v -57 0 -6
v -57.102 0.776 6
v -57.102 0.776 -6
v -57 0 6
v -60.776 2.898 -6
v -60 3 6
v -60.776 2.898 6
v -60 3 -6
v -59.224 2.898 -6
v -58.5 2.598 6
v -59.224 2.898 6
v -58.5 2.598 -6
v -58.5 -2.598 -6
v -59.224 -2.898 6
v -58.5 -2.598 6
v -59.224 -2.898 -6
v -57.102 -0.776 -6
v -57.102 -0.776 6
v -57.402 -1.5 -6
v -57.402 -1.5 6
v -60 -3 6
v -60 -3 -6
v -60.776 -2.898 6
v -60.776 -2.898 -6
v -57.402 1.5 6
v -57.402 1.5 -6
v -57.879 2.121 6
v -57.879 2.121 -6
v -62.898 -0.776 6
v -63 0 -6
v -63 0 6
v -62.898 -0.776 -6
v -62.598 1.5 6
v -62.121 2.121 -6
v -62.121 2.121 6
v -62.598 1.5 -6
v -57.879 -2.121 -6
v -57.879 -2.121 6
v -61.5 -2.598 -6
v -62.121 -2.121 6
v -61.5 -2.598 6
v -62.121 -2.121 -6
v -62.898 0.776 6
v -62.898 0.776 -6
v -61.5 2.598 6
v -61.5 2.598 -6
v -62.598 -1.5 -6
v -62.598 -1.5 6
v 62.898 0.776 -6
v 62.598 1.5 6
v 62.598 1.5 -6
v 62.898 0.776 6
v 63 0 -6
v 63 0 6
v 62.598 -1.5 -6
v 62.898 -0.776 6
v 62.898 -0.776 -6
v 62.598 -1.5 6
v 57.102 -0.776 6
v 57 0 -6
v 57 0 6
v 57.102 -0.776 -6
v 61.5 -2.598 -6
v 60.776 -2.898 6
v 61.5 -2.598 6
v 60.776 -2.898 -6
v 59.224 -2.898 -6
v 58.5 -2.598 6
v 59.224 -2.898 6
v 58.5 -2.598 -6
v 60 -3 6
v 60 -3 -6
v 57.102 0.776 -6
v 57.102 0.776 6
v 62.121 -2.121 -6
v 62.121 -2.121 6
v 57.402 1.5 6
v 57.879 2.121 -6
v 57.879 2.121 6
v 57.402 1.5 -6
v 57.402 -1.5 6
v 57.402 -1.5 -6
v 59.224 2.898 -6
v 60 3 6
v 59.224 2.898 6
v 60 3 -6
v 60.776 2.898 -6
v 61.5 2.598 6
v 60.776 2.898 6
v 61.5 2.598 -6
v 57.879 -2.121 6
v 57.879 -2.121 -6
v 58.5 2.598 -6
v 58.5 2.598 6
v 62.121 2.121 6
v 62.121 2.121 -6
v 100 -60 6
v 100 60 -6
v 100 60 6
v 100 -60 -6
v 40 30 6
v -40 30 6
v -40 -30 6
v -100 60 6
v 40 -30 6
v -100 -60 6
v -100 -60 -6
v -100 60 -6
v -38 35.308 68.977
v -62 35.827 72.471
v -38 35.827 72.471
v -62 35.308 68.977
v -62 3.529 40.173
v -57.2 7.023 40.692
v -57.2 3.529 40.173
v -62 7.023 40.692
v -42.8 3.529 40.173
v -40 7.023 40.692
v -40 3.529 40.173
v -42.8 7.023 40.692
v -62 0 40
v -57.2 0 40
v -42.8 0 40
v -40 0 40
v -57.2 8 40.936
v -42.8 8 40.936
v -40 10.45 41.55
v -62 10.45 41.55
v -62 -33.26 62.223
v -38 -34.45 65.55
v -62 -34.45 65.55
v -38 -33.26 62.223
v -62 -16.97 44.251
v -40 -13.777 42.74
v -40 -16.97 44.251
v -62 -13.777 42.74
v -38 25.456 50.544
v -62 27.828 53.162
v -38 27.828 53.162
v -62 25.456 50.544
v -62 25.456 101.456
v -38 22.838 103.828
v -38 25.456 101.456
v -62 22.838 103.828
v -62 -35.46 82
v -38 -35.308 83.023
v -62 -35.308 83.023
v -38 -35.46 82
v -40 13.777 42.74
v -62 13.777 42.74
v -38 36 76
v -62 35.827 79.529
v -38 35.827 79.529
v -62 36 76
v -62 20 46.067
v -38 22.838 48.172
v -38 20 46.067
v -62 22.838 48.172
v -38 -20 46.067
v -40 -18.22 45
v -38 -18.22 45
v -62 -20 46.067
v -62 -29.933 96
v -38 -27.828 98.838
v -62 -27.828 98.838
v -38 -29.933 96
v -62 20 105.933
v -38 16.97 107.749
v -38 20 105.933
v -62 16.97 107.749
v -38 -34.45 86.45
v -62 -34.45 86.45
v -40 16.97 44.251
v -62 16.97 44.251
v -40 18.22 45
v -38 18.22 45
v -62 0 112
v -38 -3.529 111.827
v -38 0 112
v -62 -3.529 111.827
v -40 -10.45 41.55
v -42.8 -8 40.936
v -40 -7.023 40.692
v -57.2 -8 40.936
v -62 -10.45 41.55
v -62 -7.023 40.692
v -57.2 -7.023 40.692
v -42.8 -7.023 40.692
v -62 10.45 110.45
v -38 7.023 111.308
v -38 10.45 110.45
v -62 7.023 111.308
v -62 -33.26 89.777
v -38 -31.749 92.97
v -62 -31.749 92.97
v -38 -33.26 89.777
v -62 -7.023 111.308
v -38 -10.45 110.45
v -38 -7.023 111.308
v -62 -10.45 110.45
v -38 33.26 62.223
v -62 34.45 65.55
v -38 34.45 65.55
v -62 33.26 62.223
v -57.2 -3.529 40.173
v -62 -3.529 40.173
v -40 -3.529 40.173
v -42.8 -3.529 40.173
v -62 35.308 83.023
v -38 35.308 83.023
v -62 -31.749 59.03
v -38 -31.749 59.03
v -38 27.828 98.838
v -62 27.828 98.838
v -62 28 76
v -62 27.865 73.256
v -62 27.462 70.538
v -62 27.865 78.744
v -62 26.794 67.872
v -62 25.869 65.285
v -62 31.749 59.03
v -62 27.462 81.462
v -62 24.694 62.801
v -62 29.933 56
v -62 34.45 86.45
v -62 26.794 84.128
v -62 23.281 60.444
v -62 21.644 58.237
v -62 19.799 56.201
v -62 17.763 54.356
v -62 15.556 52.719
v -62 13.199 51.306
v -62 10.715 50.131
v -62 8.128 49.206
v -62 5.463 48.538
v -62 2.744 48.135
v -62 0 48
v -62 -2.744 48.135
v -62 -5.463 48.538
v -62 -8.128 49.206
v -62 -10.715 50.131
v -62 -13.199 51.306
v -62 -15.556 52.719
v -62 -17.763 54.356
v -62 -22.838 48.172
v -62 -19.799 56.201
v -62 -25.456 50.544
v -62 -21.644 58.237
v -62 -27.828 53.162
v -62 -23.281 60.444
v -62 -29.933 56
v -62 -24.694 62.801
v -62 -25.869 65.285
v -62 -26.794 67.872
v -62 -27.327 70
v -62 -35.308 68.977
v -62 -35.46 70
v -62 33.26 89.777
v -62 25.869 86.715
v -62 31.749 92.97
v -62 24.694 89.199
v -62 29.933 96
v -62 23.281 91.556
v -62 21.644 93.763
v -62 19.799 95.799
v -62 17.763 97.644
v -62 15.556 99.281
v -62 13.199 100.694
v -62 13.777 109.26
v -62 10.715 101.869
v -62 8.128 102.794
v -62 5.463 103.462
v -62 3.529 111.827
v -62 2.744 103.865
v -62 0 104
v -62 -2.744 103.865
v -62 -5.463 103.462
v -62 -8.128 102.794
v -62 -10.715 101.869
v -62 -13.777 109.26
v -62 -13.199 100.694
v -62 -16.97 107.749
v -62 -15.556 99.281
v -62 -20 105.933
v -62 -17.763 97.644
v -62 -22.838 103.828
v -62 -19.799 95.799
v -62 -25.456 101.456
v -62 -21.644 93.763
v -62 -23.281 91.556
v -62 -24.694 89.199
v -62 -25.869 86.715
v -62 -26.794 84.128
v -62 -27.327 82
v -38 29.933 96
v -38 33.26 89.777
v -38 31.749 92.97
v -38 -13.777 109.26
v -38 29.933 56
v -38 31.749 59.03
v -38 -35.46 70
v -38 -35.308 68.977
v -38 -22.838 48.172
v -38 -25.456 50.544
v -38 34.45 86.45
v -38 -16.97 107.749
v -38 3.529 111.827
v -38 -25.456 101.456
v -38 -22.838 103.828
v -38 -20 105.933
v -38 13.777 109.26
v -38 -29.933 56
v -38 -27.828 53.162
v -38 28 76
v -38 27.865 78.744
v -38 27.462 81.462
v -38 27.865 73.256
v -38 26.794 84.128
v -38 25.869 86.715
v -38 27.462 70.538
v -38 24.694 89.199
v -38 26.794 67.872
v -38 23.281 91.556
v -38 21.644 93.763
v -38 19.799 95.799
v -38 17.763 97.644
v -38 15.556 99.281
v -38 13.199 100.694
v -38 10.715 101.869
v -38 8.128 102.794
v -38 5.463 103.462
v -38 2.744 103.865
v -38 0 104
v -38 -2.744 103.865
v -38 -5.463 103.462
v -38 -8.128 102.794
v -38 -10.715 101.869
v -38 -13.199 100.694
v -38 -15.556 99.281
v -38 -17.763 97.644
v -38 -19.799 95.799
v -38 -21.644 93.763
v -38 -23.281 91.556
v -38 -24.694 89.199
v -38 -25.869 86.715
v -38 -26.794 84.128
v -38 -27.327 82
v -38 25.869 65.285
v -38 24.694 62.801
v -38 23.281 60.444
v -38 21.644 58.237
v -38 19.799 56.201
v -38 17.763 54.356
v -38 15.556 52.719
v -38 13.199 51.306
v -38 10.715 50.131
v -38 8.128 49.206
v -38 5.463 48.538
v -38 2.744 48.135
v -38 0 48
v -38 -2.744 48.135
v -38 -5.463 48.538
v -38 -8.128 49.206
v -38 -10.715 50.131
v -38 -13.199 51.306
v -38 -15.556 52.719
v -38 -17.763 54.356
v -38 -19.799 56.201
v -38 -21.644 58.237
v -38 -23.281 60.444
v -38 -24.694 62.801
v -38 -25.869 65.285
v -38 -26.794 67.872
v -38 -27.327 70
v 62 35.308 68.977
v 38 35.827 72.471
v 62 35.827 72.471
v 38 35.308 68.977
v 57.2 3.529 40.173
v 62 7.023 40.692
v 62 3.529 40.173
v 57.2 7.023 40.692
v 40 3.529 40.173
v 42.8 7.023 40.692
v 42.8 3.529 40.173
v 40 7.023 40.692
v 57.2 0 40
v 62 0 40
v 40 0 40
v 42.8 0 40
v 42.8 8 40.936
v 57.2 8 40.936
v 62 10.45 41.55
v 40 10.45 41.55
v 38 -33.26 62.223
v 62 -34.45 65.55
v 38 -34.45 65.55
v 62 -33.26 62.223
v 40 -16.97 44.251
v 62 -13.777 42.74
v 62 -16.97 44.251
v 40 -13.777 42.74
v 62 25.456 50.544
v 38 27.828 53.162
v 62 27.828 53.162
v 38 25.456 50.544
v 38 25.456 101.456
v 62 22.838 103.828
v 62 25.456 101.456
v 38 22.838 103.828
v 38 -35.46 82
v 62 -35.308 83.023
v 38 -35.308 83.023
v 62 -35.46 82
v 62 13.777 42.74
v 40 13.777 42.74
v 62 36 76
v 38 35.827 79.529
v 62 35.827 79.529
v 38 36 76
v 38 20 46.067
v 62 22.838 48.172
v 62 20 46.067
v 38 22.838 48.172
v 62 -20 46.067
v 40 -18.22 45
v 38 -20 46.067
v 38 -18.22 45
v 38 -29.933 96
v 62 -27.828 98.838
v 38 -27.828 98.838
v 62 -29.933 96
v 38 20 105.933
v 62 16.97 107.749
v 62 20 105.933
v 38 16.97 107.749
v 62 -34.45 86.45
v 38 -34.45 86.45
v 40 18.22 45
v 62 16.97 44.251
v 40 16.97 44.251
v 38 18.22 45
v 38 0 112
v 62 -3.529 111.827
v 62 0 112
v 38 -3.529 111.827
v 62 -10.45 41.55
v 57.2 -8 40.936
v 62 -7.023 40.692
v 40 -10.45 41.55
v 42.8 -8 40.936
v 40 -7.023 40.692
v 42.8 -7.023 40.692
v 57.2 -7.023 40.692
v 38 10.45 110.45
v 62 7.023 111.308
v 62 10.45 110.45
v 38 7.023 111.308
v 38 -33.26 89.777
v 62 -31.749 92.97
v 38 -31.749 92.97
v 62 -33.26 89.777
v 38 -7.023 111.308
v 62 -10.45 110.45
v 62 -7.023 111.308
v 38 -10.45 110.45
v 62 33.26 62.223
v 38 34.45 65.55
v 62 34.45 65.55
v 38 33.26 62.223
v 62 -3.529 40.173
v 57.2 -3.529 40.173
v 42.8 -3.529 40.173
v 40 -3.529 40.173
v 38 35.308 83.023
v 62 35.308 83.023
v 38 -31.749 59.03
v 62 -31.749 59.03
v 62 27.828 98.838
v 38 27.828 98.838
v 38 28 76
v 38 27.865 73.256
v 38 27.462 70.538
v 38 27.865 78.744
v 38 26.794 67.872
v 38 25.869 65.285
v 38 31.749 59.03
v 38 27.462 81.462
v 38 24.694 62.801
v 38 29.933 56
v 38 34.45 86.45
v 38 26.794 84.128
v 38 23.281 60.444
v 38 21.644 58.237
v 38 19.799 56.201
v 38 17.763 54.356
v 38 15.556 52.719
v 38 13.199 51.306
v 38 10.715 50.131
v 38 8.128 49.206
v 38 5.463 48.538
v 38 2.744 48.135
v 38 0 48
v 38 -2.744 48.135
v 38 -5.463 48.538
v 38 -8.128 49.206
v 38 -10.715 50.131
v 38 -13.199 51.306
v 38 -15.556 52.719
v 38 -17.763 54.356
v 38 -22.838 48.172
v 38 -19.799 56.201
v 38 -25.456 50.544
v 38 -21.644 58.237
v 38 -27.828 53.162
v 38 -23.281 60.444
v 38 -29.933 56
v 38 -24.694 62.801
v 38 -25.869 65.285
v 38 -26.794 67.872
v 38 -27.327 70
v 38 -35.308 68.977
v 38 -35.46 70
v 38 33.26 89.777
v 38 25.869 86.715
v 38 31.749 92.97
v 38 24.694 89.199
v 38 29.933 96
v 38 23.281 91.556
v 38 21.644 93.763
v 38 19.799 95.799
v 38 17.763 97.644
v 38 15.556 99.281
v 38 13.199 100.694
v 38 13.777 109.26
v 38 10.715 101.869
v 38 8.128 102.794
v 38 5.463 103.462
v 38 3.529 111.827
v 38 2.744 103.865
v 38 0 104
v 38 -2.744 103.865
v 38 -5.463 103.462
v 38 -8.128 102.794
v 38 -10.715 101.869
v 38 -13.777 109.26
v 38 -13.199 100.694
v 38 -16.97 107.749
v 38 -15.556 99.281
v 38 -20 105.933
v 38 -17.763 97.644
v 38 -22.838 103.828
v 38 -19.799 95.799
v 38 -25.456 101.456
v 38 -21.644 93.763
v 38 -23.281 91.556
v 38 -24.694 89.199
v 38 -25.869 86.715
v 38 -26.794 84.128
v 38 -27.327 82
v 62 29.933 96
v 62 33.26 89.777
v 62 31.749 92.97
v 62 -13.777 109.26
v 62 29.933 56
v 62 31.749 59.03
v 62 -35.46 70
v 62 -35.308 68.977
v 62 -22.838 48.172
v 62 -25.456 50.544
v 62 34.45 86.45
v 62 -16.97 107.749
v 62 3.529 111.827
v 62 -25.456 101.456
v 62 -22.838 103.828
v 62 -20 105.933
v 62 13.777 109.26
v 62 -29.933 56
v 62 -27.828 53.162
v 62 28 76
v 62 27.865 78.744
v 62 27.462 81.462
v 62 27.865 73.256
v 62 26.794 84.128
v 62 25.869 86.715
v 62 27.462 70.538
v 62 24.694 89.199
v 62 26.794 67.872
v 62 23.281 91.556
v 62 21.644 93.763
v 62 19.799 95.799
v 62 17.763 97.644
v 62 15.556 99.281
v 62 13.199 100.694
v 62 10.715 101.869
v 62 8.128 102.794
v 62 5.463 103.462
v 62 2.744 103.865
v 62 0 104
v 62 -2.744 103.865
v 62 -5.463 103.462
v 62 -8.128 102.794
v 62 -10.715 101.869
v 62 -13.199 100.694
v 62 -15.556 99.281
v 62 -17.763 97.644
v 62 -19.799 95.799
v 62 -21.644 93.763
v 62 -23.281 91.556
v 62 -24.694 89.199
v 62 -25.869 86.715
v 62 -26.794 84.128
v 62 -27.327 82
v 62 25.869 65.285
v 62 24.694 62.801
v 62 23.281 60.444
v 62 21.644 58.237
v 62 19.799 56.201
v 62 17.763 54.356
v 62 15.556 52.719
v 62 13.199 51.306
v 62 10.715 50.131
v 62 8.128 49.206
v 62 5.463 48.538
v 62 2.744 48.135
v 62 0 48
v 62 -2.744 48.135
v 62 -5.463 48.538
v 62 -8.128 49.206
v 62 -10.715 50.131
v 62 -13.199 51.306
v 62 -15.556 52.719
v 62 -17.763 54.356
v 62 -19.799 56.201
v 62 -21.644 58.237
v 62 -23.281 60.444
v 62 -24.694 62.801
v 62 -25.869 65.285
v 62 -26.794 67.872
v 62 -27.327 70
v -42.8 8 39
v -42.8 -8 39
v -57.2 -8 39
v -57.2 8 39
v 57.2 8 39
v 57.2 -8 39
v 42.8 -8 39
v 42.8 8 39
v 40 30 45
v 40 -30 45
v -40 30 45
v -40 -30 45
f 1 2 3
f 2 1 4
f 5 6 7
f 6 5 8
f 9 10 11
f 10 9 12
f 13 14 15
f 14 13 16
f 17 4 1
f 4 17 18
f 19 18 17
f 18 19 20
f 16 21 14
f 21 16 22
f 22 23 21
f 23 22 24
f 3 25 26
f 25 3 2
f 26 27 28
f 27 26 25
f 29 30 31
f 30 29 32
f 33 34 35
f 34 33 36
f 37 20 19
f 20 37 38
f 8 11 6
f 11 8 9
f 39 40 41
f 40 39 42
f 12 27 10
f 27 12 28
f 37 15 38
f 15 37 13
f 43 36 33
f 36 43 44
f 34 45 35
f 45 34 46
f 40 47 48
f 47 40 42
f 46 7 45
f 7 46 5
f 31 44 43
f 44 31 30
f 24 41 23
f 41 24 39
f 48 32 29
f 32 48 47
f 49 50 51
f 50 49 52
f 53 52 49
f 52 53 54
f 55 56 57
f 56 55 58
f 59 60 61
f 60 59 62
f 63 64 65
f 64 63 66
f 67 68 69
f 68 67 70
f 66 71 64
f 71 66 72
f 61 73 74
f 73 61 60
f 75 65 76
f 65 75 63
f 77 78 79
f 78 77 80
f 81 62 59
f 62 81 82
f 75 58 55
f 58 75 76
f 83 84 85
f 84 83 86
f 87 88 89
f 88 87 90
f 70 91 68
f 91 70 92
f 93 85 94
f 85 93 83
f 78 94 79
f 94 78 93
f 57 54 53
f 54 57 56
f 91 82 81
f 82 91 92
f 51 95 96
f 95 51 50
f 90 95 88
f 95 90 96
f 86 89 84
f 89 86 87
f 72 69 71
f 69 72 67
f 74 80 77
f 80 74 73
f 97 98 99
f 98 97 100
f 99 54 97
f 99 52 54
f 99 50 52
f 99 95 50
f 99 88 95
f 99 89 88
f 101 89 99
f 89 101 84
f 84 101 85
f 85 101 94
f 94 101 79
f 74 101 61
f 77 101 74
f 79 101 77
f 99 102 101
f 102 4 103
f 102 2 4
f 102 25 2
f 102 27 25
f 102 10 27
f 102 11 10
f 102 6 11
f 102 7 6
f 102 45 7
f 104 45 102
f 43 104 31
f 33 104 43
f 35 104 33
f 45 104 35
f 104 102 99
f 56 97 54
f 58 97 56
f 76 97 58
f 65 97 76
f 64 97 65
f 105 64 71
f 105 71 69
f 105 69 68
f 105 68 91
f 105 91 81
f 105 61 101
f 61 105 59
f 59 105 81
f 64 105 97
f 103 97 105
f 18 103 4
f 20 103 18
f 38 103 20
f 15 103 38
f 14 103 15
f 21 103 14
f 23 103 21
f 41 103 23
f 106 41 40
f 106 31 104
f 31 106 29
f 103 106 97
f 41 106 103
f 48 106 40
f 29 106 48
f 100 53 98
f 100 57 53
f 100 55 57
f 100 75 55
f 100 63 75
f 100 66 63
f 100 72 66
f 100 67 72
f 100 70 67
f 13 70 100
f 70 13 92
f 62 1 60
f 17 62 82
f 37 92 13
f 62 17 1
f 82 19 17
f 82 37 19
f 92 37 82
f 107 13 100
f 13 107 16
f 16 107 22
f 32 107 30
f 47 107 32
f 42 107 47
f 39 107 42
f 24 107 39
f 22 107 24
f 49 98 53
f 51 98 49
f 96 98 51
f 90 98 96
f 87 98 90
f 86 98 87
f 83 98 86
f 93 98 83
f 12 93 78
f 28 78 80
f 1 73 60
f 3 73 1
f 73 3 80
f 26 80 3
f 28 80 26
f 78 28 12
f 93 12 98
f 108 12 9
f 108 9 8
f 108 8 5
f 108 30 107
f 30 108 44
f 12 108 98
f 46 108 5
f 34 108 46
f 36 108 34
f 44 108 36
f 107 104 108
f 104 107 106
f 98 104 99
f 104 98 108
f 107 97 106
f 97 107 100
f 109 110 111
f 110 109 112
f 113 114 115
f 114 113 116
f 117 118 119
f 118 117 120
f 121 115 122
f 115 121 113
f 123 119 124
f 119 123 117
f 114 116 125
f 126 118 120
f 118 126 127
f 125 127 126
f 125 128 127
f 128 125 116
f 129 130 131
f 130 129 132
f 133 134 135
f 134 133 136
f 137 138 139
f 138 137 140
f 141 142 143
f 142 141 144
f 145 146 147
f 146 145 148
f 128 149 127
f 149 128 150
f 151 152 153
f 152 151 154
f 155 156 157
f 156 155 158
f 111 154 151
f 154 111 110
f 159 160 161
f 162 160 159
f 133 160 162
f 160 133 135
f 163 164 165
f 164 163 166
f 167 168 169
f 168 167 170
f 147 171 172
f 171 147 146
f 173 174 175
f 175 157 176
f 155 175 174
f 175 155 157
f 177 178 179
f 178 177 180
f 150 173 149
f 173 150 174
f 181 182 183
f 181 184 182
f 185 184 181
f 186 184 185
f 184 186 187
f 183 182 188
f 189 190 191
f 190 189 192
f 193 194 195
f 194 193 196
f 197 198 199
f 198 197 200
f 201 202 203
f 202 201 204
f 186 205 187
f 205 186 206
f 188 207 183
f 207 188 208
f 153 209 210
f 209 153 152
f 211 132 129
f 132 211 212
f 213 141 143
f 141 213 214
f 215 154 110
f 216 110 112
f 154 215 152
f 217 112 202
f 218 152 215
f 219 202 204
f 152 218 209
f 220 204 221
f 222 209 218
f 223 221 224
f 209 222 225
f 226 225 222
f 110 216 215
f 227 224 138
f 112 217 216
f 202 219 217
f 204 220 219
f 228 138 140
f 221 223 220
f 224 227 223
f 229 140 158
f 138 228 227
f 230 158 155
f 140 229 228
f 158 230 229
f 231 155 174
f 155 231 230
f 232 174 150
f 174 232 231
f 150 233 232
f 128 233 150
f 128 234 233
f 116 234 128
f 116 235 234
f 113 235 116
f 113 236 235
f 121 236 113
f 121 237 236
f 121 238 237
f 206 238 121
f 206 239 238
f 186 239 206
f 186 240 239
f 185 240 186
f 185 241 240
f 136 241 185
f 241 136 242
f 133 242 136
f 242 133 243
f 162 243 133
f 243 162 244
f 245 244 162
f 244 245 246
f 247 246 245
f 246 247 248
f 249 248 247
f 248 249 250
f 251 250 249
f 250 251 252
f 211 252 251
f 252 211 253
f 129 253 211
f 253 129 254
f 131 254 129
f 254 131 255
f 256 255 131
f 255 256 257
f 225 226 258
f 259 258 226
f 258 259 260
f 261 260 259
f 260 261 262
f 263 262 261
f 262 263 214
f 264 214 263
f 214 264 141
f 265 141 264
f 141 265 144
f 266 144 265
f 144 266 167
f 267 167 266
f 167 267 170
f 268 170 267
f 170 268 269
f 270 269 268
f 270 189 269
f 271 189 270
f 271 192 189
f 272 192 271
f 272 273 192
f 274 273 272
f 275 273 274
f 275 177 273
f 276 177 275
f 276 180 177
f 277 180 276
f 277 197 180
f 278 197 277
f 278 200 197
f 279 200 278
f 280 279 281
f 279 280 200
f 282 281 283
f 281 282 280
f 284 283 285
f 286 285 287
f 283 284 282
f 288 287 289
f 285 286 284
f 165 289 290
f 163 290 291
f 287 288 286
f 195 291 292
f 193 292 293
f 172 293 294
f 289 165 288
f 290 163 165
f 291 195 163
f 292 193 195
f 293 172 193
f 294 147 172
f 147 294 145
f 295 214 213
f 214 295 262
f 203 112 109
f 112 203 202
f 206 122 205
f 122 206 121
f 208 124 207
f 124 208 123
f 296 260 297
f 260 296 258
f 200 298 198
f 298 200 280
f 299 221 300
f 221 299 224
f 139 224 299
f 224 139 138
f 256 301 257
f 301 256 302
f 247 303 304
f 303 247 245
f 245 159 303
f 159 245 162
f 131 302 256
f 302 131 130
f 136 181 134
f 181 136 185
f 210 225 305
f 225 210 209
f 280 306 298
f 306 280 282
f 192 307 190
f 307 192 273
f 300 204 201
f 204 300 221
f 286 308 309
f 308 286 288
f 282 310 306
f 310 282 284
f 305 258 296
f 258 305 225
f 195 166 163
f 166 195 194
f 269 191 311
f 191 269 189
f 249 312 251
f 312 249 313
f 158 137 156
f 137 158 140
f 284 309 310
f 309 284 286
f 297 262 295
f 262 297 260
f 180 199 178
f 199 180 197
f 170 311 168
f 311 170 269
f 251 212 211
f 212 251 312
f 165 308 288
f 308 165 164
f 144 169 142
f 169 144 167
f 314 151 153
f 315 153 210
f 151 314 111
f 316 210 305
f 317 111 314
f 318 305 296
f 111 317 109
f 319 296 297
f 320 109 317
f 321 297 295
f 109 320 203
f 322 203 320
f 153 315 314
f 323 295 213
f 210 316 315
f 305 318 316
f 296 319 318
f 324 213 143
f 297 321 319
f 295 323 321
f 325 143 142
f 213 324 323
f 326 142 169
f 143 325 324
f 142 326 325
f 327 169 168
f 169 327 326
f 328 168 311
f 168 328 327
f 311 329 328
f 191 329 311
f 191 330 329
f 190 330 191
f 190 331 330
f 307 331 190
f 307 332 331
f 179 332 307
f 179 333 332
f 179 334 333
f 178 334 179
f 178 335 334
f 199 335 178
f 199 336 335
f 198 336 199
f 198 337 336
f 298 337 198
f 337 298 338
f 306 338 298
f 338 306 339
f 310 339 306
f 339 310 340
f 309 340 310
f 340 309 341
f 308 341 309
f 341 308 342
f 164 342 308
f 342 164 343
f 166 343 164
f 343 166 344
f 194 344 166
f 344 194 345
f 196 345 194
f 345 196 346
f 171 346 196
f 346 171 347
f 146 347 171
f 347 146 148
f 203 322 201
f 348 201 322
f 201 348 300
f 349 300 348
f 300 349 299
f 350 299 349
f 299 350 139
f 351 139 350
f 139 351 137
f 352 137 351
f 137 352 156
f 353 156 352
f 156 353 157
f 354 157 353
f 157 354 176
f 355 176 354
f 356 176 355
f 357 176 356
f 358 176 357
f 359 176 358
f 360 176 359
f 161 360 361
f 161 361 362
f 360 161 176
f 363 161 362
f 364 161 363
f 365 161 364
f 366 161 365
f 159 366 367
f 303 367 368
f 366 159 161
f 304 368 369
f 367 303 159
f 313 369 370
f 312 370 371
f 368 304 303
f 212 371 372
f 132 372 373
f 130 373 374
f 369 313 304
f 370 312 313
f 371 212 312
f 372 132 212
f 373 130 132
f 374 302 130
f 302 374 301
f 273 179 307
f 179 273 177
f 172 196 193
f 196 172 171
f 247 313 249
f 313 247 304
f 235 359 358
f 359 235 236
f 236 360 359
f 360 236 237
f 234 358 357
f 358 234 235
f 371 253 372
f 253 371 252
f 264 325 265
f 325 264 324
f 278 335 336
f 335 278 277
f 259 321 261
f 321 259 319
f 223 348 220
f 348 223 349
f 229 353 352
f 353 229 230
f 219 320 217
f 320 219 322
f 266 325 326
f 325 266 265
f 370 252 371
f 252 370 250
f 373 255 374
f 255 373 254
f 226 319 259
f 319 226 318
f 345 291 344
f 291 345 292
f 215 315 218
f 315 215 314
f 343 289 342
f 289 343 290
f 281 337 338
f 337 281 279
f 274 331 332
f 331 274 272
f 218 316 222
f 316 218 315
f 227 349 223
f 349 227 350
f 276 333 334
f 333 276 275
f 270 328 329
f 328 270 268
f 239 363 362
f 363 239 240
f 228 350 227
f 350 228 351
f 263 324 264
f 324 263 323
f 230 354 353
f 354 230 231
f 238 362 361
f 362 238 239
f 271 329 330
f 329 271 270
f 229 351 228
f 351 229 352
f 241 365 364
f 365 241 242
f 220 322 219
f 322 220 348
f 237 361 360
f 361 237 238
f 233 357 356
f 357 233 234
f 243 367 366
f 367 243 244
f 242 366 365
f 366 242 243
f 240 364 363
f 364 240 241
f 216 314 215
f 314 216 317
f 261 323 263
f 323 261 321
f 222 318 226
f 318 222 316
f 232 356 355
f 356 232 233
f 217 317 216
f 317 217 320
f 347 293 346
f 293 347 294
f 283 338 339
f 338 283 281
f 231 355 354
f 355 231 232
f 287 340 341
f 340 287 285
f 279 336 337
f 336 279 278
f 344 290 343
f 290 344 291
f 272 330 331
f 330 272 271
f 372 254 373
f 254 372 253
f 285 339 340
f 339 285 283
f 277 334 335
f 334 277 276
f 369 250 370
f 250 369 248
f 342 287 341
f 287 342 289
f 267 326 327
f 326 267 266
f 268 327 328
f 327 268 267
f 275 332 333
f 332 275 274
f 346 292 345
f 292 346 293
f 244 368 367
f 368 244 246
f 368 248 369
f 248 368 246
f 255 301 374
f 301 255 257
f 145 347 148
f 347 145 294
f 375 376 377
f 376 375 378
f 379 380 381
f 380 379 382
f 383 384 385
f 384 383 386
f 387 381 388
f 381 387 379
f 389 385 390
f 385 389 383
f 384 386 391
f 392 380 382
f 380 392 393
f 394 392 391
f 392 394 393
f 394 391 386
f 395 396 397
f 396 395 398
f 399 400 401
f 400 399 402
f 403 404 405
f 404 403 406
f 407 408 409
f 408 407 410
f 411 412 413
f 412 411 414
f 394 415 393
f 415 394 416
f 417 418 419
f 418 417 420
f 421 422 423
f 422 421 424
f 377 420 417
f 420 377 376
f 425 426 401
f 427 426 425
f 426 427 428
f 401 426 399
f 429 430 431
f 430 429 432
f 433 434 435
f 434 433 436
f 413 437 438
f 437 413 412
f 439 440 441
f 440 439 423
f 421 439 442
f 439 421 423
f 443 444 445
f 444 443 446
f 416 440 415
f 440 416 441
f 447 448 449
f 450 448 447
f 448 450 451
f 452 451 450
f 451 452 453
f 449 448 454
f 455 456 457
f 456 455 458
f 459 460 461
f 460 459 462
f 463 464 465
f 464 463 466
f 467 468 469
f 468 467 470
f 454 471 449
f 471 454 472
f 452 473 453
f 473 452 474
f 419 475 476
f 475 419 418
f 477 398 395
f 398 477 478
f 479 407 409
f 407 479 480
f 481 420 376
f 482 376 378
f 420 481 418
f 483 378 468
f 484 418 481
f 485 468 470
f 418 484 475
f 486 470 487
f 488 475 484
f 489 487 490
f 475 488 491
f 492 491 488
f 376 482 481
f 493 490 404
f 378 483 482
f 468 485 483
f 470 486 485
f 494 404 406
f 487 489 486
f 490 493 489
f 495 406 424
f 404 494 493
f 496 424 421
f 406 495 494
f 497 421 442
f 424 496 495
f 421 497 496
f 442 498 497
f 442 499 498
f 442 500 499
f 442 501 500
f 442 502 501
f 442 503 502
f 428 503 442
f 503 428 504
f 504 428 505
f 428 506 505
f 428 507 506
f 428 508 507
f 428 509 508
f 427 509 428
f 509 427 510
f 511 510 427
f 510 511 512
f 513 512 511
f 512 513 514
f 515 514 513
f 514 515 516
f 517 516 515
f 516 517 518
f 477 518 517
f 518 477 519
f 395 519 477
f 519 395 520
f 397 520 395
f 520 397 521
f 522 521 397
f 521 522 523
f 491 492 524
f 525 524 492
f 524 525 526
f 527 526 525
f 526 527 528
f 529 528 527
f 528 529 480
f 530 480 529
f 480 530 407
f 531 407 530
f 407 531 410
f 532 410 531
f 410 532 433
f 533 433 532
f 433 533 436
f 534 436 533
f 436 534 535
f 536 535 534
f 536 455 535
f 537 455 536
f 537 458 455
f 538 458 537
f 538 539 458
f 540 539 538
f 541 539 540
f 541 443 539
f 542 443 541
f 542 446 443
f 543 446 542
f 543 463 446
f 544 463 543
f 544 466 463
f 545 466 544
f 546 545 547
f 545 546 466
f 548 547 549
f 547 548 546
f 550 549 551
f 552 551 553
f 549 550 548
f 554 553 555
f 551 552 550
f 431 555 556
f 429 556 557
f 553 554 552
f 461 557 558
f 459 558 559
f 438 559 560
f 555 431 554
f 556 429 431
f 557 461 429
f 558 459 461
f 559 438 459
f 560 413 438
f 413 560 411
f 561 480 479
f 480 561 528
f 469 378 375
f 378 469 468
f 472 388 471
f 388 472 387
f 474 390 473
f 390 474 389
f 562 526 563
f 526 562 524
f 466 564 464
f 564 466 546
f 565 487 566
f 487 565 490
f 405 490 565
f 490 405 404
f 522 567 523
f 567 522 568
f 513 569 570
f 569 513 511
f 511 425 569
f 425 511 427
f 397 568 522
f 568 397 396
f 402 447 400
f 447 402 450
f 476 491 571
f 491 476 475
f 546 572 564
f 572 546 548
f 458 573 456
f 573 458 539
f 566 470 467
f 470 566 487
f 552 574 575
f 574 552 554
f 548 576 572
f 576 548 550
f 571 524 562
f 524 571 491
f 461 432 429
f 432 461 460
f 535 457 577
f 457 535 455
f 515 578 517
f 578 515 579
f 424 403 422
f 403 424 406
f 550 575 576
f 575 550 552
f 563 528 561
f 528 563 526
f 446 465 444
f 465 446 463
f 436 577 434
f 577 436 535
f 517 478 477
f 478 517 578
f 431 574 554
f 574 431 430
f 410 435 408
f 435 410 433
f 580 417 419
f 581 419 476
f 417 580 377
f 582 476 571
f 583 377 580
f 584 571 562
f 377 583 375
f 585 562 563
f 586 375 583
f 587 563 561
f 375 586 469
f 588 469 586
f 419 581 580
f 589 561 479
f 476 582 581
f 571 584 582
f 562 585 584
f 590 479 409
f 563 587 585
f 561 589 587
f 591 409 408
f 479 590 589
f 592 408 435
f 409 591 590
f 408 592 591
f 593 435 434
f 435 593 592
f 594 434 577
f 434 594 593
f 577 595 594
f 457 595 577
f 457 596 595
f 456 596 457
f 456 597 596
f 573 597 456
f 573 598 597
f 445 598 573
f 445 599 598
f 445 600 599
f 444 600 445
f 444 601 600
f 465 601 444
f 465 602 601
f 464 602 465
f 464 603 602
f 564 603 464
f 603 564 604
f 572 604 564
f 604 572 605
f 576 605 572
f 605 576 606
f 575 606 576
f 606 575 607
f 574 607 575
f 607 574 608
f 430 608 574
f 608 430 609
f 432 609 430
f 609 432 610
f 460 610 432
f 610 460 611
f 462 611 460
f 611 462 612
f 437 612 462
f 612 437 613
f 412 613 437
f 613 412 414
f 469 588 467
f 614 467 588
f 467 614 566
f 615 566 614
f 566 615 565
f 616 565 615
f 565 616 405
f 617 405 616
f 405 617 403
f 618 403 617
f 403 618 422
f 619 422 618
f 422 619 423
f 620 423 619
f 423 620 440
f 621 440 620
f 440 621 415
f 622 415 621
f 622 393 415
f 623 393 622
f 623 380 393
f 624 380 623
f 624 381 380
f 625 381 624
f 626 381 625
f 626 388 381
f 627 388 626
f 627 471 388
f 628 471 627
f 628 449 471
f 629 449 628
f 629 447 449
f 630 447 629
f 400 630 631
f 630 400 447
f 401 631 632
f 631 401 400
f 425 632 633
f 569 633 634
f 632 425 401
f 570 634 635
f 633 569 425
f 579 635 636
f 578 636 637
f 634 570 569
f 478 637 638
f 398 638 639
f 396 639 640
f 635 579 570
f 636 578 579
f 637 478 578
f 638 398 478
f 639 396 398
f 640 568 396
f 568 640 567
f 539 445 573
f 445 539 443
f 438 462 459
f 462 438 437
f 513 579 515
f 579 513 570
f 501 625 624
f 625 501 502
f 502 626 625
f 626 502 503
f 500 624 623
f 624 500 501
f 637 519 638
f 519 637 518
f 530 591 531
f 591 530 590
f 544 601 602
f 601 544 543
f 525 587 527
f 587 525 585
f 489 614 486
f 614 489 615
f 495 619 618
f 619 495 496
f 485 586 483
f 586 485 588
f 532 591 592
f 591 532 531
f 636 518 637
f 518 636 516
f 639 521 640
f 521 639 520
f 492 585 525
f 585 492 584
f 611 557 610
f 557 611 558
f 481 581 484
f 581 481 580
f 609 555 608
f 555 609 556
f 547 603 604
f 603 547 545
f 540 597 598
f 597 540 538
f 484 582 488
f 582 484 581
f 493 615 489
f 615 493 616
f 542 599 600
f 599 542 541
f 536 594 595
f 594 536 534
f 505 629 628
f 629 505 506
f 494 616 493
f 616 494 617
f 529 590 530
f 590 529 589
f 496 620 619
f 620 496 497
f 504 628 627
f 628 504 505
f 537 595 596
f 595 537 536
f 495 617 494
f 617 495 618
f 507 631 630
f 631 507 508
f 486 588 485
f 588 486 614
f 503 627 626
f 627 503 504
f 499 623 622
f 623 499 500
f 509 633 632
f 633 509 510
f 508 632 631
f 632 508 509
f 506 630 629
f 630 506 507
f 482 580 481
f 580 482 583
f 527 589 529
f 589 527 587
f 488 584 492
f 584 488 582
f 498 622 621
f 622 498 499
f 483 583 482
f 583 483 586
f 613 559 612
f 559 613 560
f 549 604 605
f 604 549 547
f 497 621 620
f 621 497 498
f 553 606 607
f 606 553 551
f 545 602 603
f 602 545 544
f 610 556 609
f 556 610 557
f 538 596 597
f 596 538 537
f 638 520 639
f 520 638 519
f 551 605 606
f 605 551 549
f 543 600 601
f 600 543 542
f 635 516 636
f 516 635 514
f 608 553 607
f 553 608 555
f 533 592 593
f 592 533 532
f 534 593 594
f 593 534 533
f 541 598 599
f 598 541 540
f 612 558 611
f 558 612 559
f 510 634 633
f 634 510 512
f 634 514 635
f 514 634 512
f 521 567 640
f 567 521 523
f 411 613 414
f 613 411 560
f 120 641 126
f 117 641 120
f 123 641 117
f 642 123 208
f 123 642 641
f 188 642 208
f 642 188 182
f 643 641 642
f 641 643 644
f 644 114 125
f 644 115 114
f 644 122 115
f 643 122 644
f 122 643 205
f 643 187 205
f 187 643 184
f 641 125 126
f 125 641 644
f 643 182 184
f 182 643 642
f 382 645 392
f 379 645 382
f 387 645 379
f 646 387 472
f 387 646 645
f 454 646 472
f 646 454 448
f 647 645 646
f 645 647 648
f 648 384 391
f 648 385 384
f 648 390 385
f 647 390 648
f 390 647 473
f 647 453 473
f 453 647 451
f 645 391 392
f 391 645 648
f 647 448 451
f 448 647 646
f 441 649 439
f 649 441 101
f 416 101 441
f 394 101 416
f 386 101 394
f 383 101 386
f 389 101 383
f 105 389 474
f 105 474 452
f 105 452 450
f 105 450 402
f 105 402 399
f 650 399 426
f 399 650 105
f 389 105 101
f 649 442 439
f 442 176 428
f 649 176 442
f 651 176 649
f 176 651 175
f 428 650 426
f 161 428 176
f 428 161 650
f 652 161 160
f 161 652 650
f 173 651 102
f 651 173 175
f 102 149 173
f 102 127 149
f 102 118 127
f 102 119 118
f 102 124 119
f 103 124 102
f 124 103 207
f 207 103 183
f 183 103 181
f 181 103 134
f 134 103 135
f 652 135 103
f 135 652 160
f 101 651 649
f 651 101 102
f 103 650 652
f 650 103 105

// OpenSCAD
// ISM-FJ-TOOL-010 — Fuselage splice assembly jig (study mm)
// Aligns A01↔A02 at FS-42 and A02↔A03 at FS-72. Issue #106.
// Single manifold solid: X-axis rings seat into saddle with volumetric overlap.

fuse_od = 56;
ring_t = 8;
ring_w = 24;
saddle_h = 40;
base_l = 200;
base_w = 120;
base_t = 12;
pin_d = 6;
overlap = 6;
ring_od = fuse_od + 2 * ring_t;

module splice_ring() {
    // Clamp about fuselage X-axis; radial split for open/close.
    rotate([0, 90, 0])
        difference() {
            cylinder(h = ring_w, d = ring_od, center = true, $fn = 64);
            cylinder(h = ring_w + 2, d = fuse_od, center = true, $fn = 64);
            translate([0, -(fuse_od / 2 + ring_t / 2), 0])
                cube([ring_t + 4, ring_t + 2, ring_w + 2], center = true);
        }
}

module saddle() {
    cube([base_l * 0.4, base_w * 0.5, saddle_h], center = true);
}

module base() {
    difference() {
        cube([base_l, base_w, base_t], center = true);
        for (x = [-60, 60])
            translate([x, 0, 0])
                cylinder(h = base_t + 2, d = pin_d, center = true, $fn = 24);
    }
}

module fuselage_splice_jig() {
    saddle_top = base_t / 2 + saddle_h;
    // Ring OD bottom digs `overlap` into the flat saddle top → one solid
    ring_z = saddle_top - overlap + ring_od / 2;
    union() {
        base();
        // Sink saddle into base by 1 mm so the join is volumetric
        translate([0, 0, base_t / 2 + saddle_h / 2 - 1])
            saddle();
        // Pegs from saddle into each ring (belt-and-suspenders manifold join)
        for (x = [-50, 50]) {
            translate([x, 0, saddle_top - overlap / 2])
                cube([ring_w * 0.6, 16, overlap + 2], center = true);
            translate([x, 0, ring_z])
                splice_ring();
        }
    }
}

fuselage_splice_jig();
